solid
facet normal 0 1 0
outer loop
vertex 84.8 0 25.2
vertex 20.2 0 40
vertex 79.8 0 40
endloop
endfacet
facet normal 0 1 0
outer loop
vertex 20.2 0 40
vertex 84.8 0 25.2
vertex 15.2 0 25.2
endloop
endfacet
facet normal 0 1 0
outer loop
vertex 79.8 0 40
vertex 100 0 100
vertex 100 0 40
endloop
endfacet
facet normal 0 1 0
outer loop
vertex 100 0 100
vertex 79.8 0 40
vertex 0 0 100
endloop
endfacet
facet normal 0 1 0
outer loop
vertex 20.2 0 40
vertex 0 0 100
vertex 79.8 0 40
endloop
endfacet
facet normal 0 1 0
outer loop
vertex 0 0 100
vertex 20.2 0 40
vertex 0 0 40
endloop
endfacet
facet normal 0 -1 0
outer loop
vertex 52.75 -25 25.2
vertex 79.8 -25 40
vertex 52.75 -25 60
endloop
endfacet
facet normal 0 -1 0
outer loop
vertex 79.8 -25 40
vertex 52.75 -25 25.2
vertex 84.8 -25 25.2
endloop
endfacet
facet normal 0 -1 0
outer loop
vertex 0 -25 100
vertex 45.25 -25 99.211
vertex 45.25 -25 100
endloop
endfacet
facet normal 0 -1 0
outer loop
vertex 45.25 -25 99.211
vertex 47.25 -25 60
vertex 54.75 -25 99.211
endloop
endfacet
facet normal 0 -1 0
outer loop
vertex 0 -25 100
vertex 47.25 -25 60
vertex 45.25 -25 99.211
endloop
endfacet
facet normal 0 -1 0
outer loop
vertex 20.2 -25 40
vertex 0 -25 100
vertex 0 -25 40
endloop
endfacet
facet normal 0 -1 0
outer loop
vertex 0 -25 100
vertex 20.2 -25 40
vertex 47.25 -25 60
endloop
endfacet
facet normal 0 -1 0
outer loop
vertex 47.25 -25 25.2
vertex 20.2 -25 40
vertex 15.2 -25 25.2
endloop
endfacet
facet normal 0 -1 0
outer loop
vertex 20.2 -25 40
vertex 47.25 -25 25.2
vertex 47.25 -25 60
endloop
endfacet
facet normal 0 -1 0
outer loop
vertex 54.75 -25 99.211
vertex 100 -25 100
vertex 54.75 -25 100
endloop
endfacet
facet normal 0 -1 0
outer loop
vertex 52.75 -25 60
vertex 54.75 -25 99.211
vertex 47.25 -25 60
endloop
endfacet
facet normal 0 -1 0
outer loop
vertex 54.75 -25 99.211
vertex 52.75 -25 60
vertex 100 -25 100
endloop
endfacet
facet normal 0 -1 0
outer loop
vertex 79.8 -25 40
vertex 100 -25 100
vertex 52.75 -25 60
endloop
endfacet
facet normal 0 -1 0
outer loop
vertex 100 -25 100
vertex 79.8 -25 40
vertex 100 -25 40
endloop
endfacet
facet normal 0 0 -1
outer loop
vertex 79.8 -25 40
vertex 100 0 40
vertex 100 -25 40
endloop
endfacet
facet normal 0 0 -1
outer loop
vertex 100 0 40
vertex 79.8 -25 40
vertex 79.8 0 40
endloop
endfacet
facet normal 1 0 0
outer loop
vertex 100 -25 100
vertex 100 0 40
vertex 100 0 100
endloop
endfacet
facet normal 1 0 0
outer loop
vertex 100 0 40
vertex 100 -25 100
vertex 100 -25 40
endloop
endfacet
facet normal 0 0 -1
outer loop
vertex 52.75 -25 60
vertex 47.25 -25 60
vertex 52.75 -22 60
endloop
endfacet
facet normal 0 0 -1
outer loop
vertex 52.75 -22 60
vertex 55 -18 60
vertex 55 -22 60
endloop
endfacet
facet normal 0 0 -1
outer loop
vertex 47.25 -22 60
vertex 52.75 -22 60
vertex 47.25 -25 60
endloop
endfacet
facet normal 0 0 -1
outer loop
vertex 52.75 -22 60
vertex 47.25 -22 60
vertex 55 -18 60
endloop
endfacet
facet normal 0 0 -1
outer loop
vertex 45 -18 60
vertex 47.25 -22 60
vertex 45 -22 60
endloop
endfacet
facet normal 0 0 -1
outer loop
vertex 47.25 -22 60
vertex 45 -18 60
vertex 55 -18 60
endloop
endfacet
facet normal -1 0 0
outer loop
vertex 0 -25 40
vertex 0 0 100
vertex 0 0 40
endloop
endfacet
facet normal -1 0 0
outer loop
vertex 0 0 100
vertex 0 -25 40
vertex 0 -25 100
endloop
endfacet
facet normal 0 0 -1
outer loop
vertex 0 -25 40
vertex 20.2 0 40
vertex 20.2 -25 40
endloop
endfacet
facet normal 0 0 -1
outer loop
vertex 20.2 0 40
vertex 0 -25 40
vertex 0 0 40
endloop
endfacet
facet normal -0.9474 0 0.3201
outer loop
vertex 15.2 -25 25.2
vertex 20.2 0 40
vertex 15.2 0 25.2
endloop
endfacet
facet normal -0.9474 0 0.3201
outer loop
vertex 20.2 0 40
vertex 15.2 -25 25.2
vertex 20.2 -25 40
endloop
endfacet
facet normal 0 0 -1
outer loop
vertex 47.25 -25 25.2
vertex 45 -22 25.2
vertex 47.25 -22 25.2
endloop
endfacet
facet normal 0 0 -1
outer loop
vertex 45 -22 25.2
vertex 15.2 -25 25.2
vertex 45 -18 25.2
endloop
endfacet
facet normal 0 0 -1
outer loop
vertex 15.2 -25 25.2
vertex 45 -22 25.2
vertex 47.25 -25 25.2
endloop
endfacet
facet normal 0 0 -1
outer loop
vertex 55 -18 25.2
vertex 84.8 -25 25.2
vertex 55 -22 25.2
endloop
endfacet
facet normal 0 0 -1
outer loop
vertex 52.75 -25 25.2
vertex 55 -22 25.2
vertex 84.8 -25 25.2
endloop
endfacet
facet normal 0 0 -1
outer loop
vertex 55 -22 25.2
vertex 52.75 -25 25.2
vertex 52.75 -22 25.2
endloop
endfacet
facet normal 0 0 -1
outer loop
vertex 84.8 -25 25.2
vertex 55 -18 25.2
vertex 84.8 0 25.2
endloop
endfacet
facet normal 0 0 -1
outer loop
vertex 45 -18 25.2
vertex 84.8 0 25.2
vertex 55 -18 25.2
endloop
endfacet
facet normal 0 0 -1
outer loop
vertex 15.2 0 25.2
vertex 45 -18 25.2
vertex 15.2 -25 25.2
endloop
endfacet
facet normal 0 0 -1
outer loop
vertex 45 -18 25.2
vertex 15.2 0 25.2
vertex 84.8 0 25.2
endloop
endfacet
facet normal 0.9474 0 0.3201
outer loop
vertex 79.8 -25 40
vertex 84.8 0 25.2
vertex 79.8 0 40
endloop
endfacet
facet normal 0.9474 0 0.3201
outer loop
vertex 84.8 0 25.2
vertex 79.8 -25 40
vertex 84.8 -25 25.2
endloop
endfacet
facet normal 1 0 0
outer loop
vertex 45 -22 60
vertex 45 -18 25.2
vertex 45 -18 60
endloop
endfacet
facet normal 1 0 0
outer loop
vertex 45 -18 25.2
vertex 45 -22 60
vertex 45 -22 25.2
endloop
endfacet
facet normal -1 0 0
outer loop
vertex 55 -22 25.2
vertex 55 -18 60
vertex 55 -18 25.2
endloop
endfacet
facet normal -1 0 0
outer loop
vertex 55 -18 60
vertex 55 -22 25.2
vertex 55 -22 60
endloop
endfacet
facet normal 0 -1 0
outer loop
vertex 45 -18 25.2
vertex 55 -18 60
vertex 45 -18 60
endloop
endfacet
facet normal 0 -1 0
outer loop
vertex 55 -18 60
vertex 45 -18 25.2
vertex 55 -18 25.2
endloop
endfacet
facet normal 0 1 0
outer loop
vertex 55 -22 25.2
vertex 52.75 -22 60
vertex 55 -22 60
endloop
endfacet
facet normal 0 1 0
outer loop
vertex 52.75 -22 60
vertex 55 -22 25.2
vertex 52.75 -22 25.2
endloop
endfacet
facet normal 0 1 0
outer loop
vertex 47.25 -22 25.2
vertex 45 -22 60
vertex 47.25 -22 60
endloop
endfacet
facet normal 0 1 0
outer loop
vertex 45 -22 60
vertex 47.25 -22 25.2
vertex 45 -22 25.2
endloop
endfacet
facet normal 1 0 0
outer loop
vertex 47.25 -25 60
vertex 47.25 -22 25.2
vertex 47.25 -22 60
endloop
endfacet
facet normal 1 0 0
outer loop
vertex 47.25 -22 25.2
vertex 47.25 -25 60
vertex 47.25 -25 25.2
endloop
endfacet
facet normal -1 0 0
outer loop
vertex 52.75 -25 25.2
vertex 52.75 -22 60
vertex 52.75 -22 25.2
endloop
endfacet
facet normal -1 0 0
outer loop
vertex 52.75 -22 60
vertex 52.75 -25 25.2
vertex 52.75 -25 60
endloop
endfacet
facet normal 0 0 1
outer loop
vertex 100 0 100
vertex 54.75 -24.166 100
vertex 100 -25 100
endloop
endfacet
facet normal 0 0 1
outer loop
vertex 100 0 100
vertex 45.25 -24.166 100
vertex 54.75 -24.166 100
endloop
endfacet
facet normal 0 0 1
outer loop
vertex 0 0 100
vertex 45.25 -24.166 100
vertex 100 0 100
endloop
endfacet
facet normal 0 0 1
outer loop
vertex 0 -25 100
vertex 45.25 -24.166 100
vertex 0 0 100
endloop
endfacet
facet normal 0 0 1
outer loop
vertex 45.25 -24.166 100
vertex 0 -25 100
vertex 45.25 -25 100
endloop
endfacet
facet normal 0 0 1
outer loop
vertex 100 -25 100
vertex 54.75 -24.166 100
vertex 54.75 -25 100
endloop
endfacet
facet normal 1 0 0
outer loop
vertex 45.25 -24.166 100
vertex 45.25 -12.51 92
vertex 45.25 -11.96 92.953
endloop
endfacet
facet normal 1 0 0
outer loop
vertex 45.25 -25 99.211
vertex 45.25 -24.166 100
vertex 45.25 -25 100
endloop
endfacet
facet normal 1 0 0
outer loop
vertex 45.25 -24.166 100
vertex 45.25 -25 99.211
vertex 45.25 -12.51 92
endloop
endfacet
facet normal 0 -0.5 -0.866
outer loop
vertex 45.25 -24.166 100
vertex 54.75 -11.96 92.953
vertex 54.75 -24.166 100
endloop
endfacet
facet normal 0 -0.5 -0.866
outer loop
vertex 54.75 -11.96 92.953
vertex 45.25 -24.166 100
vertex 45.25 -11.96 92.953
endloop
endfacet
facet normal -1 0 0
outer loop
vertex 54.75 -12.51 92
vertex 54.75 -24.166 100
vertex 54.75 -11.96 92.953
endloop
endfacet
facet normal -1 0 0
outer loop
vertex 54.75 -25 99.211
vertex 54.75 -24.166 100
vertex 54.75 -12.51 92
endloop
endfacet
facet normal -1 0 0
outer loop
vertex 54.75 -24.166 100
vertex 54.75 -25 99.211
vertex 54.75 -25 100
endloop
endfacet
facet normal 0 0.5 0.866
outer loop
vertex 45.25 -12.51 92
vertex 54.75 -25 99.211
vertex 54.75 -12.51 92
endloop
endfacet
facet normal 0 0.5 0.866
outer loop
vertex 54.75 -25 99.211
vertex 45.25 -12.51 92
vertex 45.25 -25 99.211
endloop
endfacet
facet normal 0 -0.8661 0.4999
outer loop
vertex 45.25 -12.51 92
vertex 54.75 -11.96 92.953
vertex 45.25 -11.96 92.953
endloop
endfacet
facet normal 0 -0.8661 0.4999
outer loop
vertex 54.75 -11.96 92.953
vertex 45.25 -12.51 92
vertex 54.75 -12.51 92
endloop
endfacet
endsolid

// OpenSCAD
//folga
  ff=0.2;
difference (){ rotate([90,0,0])translate([0,0,0])  linear_extrude(25) {polygon(points=[[100,60],[100,40],[80-ff,40],[85-ff,25+ff],[15+ff,25+ff],[20+ff,40],[0,40],[0,60]]);
  }; 
  
#translate([50-5,-25+3,0]) cube([10,4,60]);
  #translate([50-5.5/2,-25,0]) cube([5.5,4,60]);
  };
  
  difference(){
    translate([0,-25,60]) 
      cube([100,25,40]);

#translate([50-9.5/2,-30+4.5,107.5-5.5-2.5]) rotate([-30,0,0])cube([9.5,15,1.1]);

  };
 
